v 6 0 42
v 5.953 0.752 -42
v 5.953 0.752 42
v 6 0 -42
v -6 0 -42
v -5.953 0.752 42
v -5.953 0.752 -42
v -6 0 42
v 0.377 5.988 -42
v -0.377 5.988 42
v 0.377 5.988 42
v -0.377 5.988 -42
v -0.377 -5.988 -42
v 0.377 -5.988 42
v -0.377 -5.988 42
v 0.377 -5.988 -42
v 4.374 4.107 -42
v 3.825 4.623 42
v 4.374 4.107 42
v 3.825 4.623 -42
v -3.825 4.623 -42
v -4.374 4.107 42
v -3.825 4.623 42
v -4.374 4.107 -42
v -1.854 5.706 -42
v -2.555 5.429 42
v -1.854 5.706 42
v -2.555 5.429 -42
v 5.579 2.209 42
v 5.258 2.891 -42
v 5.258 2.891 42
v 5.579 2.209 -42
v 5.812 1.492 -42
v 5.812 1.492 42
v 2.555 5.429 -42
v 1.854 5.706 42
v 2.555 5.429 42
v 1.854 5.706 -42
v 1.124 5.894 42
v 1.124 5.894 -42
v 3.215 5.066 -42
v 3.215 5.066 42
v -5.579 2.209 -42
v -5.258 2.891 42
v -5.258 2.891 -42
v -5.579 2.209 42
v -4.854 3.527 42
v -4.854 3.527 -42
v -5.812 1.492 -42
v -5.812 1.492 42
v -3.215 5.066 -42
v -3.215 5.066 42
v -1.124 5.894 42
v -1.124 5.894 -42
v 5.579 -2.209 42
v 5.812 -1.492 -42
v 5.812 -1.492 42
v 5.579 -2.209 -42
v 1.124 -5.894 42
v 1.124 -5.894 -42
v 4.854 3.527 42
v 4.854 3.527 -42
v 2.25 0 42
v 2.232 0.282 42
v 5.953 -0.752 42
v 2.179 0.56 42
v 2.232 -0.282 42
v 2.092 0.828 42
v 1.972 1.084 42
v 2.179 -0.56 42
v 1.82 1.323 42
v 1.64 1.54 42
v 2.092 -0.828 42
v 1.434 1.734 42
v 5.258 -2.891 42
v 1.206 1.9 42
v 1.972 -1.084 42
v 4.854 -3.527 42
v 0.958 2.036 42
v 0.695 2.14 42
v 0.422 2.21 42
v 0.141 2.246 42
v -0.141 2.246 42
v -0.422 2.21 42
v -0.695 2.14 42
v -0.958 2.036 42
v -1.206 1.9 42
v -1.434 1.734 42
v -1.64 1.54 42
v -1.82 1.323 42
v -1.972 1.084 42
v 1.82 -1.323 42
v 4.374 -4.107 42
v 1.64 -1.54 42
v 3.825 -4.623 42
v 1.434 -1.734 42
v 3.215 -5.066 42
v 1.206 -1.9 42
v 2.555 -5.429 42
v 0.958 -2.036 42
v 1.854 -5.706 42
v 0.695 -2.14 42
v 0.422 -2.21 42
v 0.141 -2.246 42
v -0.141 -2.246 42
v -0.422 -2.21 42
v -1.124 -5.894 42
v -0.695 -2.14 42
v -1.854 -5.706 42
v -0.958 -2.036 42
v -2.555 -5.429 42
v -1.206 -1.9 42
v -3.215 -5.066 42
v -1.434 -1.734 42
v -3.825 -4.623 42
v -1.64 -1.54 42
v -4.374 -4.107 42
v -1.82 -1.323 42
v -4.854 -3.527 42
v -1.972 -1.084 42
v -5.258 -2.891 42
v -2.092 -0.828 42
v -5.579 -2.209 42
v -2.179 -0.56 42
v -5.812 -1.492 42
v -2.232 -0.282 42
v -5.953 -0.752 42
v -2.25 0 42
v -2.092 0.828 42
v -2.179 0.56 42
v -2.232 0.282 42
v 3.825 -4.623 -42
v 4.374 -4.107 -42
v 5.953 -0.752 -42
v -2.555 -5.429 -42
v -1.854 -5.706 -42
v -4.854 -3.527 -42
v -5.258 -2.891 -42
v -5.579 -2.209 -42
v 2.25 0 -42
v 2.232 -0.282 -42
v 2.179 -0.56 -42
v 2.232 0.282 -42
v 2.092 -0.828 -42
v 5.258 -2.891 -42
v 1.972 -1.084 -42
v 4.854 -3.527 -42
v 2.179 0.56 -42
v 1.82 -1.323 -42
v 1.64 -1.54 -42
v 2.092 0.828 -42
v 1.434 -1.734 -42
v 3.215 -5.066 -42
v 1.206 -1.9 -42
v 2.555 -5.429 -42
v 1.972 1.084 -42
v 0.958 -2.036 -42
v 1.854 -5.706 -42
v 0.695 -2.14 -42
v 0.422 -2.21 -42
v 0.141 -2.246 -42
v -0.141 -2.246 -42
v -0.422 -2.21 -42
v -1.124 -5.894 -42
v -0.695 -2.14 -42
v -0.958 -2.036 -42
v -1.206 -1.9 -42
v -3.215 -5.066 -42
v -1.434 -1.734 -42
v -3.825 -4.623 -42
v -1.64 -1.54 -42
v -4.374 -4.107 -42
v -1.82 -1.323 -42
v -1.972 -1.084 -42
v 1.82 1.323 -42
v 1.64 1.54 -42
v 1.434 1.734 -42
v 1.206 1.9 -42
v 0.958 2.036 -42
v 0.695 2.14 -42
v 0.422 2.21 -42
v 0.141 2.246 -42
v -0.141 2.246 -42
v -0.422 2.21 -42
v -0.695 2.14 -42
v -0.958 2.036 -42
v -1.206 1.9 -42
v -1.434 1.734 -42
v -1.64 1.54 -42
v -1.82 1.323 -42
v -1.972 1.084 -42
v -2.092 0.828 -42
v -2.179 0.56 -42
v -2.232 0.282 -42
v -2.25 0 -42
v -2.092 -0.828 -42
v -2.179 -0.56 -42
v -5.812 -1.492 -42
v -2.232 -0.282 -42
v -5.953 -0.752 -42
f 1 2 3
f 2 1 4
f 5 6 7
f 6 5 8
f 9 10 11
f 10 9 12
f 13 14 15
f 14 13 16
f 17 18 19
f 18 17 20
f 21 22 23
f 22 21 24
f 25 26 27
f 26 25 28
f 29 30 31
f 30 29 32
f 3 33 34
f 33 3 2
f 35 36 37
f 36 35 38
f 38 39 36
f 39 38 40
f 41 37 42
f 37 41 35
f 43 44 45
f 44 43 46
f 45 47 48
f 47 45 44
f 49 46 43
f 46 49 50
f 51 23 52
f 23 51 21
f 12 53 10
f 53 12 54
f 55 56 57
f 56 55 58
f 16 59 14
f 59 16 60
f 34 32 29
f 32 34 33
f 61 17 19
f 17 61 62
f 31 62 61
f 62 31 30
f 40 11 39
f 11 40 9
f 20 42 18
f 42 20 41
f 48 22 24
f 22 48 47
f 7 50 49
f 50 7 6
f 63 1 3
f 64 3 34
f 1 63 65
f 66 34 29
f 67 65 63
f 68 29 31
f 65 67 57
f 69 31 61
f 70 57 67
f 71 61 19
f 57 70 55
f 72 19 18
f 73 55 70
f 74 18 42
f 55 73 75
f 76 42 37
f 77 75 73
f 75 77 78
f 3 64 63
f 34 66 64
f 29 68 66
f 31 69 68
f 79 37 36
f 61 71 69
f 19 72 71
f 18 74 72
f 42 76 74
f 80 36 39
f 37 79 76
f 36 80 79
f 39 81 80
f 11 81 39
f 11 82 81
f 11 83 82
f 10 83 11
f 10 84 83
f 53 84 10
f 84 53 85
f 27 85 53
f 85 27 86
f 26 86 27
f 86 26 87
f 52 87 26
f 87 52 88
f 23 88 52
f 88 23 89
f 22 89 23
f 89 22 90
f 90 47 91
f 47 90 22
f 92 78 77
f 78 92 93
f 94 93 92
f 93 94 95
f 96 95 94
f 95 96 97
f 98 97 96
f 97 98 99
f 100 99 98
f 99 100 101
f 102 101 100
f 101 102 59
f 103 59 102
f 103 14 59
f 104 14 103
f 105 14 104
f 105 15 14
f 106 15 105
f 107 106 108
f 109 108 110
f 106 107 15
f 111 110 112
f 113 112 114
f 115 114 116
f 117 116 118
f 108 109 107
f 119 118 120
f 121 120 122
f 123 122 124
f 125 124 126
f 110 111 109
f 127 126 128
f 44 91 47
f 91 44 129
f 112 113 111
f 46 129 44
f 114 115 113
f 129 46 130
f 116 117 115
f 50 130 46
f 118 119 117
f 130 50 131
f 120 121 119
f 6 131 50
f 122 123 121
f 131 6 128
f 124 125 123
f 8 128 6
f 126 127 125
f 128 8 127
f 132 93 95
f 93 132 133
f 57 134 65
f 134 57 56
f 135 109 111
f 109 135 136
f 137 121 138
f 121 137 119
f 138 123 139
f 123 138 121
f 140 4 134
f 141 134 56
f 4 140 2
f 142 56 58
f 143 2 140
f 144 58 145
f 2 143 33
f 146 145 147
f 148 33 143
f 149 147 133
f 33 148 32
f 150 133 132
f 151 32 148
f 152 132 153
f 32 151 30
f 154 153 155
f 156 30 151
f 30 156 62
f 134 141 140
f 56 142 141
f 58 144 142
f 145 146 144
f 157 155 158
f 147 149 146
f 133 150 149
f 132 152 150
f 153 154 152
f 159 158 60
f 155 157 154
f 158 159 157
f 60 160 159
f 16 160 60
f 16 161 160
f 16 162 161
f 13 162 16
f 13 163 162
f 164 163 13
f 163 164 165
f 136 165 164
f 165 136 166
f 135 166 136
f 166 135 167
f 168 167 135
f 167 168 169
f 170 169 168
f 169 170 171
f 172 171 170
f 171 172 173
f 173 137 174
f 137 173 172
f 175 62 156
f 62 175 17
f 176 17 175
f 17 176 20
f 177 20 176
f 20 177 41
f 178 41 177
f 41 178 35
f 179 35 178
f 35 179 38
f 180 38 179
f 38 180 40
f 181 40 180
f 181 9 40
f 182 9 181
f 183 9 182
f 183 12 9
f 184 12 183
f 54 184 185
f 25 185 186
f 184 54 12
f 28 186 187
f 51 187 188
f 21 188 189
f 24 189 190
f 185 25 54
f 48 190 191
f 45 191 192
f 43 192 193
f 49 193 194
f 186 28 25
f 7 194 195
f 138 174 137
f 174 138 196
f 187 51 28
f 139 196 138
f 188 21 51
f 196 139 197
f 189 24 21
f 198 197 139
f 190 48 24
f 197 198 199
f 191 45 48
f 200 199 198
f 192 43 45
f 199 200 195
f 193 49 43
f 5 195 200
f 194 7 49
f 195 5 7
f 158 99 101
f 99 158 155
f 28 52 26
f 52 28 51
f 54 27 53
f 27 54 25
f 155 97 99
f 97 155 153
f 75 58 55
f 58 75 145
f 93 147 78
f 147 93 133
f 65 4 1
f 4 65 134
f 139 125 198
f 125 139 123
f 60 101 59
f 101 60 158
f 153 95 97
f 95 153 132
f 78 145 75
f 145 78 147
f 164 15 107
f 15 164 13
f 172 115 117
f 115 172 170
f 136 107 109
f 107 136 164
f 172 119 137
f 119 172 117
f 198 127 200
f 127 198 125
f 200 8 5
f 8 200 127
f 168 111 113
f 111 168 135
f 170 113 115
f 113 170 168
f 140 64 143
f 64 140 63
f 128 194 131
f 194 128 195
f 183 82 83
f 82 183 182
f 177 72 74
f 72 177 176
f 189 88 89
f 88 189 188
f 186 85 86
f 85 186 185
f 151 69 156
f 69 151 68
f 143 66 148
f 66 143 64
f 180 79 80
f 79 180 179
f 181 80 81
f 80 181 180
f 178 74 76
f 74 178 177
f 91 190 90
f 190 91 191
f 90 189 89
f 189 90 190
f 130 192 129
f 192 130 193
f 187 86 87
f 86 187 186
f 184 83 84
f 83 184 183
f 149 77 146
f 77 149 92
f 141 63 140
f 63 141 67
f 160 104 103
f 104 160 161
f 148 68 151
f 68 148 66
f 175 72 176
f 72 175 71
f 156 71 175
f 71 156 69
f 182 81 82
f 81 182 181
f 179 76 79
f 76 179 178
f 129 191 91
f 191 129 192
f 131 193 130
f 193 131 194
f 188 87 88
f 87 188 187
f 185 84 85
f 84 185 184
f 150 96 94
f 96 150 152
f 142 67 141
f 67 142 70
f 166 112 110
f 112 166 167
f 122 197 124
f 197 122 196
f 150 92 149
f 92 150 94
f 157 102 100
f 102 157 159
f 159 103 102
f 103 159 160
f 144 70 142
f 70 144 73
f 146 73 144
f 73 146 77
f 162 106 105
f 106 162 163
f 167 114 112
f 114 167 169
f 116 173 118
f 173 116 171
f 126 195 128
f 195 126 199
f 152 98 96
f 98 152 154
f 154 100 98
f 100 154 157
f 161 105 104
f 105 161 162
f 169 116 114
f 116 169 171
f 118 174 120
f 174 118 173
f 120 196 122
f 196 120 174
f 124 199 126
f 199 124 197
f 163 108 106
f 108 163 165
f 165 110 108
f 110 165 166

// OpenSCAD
$fn = 50;


difference() {
	union() {
		translate(v = [0, 0, -42.0000000000]) {
			cylinder(h = 84, r = 6.0000000000);
		}
	}
	union() {
		translate(v = [0, 0, -100.0000000000]) {
			cylinder(h = 200, r = 2.2500000000);
		}
	}
}
